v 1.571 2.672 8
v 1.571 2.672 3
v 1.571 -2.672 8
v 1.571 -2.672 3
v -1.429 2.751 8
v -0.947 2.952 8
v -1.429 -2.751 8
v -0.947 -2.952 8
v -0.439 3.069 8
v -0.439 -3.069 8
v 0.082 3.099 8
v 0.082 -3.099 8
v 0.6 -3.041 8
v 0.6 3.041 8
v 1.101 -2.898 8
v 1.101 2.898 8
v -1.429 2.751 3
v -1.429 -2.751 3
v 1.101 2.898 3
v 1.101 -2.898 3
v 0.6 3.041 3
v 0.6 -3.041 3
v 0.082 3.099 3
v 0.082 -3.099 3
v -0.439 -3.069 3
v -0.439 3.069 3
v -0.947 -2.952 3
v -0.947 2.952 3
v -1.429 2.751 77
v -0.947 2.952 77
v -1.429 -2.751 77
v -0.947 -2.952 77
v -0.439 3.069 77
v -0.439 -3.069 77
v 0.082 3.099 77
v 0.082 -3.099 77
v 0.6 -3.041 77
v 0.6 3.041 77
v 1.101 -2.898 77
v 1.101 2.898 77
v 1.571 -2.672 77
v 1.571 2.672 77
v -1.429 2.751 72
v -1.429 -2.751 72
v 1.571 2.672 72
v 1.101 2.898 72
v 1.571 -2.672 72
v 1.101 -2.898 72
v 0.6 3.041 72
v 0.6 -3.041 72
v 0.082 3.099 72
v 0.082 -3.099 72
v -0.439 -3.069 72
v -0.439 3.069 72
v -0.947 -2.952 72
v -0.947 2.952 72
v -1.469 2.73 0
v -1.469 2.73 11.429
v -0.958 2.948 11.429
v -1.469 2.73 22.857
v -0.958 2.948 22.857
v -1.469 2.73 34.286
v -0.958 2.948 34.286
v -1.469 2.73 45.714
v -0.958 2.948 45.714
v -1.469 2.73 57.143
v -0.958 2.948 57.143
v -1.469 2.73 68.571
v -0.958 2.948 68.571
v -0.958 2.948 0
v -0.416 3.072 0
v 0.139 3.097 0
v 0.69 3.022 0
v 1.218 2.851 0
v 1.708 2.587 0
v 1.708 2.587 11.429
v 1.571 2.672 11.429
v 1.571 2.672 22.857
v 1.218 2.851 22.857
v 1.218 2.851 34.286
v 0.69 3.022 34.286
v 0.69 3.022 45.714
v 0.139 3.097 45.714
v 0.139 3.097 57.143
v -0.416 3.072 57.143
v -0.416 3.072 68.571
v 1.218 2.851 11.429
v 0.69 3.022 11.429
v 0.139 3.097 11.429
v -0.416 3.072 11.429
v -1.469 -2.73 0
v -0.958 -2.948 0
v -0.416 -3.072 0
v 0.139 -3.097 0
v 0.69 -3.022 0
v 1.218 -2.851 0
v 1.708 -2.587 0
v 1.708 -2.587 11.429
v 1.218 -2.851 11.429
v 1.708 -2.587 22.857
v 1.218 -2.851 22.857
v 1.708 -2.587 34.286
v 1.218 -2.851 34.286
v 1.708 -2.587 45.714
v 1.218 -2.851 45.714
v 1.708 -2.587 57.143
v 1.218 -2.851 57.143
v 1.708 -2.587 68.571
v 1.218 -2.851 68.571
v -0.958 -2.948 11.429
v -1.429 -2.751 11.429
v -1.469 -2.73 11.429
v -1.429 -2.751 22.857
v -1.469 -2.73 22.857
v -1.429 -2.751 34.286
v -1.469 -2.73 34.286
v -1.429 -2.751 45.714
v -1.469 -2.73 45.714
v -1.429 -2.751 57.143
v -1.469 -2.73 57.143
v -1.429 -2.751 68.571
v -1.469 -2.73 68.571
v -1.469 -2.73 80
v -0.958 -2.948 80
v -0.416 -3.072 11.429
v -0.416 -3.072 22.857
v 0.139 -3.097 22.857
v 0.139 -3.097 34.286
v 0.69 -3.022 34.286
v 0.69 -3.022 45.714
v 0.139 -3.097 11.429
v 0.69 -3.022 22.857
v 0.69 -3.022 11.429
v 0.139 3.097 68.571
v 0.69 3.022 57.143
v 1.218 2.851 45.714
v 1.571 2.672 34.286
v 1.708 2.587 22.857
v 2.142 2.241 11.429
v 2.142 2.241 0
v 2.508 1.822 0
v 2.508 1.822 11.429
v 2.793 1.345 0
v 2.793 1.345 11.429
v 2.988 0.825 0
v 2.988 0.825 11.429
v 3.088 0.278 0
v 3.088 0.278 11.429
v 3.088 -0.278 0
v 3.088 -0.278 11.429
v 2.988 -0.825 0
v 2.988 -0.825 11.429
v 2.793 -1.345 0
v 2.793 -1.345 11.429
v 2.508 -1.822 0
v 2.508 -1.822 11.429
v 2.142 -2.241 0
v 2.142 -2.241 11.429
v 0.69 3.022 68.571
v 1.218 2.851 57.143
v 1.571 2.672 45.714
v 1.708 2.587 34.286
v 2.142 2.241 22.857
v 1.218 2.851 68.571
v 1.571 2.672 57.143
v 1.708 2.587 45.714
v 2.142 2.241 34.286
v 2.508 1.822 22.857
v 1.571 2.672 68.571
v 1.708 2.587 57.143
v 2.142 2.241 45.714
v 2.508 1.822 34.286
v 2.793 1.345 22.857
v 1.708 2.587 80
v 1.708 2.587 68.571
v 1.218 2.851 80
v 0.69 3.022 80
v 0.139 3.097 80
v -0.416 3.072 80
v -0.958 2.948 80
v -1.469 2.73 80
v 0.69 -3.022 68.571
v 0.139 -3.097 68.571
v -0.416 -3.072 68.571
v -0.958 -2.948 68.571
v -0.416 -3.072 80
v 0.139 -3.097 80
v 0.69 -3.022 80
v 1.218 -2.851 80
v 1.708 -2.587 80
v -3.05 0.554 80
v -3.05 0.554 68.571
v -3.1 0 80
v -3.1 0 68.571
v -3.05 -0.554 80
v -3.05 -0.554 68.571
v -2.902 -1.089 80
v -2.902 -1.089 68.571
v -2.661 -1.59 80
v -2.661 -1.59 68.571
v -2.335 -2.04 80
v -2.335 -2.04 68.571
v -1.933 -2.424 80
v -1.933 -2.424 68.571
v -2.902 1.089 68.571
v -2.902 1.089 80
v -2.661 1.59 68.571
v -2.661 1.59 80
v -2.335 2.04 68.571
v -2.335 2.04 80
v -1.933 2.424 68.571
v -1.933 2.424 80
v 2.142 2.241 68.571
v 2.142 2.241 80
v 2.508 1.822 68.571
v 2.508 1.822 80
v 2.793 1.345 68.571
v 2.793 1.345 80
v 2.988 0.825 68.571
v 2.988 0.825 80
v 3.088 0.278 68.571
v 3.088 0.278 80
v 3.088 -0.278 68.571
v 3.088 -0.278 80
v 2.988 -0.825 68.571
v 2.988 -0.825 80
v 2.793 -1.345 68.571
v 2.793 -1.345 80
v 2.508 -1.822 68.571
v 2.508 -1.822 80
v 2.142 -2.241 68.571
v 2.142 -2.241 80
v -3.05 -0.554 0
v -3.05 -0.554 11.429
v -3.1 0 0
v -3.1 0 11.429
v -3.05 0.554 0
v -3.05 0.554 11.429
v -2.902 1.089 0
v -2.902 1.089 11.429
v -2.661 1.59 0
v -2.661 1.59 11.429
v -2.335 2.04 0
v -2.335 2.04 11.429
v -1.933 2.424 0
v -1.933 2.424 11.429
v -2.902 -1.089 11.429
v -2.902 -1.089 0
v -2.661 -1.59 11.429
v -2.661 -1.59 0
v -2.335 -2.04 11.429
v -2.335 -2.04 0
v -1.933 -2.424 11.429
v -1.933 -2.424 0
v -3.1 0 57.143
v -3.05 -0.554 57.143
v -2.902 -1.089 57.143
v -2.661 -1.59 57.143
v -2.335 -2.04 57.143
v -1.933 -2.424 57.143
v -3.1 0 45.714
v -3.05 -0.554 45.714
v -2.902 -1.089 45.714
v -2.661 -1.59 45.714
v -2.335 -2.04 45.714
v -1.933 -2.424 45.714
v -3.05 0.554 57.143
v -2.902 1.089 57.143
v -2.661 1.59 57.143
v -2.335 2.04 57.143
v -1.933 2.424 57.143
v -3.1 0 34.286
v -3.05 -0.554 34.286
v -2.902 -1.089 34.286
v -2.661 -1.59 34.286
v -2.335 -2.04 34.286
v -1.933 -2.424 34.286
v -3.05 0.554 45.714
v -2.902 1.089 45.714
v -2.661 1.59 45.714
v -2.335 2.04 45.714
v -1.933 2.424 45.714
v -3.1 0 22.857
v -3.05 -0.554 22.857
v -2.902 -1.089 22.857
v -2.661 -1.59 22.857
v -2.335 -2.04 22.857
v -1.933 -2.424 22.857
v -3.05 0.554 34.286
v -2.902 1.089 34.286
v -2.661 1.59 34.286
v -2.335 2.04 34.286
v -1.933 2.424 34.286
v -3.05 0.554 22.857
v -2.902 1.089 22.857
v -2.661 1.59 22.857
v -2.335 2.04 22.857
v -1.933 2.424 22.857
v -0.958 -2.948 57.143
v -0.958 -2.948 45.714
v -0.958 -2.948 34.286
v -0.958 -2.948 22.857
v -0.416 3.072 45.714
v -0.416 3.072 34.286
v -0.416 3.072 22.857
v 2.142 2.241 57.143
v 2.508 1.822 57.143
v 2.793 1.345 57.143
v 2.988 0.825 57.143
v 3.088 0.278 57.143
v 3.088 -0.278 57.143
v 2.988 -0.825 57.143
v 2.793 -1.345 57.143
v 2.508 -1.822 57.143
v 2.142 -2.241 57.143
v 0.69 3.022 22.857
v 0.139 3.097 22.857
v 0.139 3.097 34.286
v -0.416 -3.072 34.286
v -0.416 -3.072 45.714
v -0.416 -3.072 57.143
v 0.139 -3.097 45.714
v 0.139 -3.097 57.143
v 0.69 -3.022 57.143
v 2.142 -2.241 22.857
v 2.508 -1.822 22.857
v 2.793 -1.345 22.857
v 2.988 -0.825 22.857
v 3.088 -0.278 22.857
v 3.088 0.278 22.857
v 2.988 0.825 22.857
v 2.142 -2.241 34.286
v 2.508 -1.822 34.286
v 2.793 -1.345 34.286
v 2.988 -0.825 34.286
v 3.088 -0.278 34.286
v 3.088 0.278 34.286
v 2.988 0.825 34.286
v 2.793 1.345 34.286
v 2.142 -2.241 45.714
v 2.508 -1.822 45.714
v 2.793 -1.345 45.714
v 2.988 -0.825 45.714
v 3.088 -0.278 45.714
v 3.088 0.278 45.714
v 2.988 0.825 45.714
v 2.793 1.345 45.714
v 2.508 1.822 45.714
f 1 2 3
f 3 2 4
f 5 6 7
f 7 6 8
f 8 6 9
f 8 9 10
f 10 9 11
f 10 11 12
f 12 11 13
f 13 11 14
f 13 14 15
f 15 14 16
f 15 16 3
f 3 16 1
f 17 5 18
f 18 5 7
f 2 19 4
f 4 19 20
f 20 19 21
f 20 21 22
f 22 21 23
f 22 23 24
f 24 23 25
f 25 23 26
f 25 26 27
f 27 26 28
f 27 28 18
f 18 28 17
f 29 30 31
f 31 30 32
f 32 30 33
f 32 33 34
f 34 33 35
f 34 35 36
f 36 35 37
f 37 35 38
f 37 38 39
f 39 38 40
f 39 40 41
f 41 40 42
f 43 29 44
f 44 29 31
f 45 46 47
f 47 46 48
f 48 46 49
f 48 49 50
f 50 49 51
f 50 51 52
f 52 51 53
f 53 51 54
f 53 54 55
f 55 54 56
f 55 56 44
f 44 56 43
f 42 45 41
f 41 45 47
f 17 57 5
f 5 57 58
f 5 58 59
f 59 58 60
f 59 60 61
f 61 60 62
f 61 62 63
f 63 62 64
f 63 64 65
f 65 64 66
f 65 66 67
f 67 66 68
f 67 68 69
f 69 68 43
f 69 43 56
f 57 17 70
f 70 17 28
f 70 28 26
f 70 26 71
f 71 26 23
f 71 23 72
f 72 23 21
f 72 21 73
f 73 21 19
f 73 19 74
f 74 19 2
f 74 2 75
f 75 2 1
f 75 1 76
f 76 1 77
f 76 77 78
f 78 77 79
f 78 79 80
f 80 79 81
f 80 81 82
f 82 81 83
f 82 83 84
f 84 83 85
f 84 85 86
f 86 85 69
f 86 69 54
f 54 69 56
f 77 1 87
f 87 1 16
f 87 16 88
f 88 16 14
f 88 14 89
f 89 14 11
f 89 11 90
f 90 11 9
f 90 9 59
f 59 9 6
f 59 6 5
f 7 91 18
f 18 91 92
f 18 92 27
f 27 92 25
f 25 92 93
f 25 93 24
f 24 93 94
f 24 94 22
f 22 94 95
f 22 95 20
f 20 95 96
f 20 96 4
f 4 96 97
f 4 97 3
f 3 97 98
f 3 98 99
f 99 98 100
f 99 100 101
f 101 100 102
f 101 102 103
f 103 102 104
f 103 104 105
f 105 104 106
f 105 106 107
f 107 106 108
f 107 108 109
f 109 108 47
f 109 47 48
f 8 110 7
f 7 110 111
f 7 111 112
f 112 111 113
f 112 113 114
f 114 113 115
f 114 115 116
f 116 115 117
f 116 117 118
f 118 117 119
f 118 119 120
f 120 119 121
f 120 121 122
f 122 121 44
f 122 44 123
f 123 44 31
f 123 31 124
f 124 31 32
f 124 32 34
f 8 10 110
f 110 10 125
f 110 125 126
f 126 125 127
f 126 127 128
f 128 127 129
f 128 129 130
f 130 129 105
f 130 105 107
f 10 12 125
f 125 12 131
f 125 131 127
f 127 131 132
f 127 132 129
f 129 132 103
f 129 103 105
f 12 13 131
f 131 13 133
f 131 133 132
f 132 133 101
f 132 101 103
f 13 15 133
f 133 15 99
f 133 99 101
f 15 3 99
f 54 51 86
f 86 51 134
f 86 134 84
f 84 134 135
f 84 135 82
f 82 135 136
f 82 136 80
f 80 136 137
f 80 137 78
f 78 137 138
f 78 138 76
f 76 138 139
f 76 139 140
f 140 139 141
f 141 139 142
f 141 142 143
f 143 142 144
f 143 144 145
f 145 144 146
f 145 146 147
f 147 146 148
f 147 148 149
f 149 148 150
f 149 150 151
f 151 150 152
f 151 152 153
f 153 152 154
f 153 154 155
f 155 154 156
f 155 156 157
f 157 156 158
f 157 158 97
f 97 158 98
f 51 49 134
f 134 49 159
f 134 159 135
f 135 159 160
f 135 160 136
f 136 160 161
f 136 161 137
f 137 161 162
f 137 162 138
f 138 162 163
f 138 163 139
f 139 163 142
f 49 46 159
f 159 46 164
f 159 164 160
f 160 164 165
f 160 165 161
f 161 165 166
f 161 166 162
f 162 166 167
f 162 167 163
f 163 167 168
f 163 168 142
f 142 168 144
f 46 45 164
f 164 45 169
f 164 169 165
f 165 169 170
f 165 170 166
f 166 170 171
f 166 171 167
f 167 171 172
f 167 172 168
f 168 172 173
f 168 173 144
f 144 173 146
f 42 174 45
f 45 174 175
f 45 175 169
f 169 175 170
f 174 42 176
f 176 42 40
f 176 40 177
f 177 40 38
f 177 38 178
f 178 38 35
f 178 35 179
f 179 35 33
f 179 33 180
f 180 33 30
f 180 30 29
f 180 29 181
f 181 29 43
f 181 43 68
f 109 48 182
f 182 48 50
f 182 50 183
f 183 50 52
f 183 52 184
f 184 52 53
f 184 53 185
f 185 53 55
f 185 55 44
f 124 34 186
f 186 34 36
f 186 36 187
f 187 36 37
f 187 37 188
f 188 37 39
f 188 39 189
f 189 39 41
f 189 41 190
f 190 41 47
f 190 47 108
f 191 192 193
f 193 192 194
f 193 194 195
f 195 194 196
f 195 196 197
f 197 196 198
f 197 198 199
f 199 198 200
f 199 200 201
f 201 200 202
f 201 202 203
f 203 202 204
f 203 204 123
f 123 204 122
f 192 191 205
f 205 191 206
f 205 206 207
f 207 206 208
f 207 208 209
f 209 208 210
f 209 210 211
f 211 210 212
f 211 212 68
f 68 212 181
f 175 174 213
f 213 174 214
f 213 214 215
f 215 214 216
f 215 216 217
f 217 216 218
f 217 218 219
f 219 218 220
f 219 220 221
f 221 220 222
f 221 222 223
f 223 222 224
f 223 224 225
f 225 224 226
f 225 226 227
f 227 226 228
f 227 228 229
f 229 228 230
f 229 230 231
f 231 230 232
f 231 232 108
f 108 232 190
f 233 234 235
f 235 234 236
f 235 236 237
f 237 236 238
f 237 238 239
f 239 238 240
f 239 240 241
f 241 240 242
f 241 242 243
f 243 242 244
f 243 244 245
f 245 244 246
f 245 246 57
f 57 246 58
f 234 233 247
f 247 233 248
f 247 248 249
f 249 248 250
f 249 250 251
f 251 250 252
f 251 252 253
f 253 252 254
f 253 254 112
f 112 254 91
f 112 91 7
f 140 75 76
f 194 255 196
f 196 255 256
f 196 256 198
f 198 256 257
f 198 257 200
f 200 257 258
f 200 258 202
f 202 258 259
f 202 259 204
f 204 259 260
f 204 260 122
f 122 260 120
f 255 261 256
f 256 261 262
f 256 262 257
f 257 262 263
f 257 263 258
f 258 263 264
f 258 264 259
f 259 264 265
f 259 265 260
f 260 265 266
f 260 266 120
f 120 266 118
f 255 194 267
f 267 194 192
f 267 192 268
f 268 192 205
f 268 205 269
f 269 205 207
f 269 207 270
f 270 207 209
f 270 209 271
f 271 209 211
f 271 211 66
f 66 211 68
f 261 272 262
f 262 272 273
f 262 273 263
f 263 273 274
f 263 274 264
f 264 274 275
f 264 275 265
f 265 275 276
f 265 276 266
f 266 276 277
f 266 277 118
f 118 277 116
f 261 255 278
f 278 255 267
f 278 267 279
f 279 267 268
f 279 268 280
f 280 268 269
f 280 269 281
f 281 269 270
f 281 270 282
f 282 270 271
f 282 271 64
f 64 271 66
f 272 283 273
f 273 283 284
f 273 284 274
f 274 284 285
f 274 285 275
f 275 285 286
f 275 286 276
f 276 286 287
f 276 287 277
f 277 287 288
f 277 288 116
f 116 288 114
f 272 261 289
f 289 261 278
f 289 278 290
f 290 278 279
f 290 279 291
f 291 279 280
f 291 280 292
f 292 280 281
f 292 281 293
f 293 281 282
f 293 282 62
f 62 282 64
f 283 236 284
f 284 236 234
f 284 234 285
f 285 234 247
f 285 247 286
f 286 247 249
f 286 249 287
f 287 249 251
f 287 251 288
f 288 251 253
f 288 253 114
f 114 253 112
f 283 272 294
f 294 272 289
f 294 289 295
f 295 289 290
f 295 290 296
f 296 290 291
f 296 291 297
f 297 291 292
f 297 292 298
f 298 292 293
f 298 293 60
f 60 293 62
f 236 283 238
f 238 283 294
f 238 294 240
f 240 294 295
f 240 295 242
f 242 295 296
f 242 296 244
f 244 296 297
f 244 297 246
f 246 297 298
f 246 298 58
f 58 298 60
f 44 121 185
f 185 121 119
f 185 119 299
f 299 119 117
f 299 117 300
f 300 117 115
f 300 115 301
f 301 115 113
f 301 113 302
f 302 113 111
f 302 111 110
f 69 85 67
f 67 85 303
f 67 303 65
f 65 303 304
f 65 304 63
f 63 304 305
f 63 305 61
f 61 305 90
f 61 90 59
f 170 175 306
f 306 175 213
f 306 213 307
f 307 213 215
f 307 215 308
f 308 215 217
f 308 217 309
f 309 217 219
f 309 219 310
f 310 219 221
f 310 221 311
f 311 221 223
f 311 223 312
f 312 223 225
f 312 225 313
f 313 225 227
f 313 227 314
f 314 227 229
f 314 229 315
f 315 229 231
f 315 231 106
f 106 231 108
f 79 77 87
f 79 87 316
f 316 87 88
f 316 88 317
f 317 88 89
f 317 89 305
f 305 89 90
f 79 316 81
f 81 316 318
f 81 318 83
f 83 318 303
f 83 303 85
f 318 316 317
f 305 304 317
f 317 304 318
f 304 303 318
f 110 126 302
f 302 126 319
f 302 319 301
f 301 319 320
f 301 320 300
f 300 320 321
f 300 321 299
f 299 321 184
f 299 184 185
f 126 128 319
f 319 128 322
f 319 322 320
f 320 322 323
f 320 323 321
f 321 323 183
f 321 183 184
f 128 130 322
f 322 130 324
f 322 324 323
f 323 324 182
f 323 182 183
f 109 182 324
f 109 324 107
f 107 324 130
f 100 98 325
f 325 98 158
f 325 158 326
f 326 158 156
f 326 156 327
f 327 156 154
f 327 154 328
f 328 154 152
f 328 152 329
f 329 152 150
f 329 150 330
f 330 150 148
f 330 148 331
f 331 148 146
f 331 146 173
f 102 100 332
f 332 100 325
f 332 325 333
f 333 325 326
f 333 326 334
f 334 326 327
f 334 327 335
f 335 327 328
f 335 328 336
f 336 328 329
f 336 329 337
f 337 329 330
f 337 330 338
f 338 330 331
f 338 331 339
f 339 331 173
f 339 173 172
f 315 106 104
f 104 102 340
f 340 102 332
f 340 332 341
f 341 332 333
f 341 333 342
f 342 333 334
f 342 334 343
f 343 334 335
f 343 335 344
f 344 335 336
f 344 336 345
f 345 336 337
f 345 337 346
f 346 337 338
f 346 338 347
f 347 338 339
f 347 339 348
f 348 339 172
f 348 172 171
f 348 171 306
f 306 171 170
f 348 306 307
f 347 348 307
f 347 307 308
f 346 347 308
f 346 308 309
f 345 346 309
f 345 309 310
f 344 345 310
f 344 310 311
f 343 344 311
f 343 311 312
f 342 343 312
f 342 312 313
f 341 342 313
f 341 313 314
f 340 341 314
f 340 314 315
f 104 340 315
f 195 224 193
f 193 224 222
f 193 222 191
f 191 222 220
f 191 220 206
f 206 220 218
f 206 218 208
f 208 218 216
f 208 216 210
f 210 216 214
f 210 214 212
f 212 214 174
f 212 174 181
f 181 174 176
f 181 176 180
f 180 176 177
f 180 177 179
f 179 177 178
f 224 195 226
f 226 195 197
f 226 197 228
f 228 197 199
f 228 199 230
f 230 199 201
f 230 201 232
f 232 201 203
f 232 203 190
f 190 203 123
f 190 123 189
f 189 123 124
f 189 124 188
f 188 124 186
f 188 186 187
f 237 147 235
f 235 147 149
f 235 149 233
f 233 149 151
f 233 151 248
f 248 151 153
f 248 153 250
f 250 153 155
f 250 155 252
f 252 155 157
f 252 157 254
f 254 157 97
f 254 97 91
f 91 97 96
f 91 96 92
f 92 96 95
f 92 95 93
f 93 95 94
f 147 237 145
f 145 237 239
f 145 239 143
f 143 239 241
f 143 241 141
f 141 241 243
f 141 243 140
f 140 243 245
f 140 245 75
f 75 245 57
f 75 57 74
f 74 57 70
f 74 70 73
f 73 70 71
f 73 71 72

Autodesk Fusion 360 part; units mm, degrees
sketch "Sketch1" plane through (0, 0, 0) normal (0, 0, 1) x (1, 0, 0)
  circle A0 centre (0, 0) radius 3.1
  dimension "d3" = 6.2
extrude "Extrude1" add sketch "Sketch1" along normal blind 80
sketch "Sketch3" plane through (0, 0, 0) normal (0, 1, 0) x (1, 0, 0)
  line L0 (-1.4286, -3) -> (1.5714, -3)
  line L1 (1.5714, -3) -> (1.5714, -8)
  line L2 (1.5714, -8) -> (-1.4286, -8)
  line L3 (-1.4286, -8) -> (-1.4286, -3)
  line L4 (-1.4286, -77) -> (1.5714, -77)
  line L5 (1.5714, -77) -> (1.5714, -72)
  line L6 (1.5714, -72) -> (-1.4286, -72)
  line L7 (-1.4286, -72) -> (-1.4286, -77)
  line L8 (-3.1, -80) -> (3.1, -80)
  dimension "d9" = 3
  dimension "d10" = 5
  dimension "d11" = 3
  dimension "d12" = 5
  dimension "d18" = 3
  dimension "d19" = 3
extrude "Extrude2" cut sketch "Sketch3" along normal mid plane 200 contours L4 L5 L6 L7
extrude "Extrude3" cut sketch "Sketch3" along normal mid plane 200 contours L0 L1 L2 L3
equation "dowel_pin_radius = 3.10 mm"
equation "length = 80 mm"
equation "d3 = dowel_pin_radius * 2"
equation "d4 = length"
equation "hole_distance = 3 mm"
equation "hole_width = 3 mm"
equation "hole_height = 5 mm"
equation "d9 = hole_width"
equation "d10 = hole_height"
equation "d11 = hole_width"
equation "d12 = hole_height"
equation "extra = 100 mm"
equation "d14 = extra"
equation "d16 = extra"
equation "d18 = hole_distance"
equation "d19 = hole_distance"
